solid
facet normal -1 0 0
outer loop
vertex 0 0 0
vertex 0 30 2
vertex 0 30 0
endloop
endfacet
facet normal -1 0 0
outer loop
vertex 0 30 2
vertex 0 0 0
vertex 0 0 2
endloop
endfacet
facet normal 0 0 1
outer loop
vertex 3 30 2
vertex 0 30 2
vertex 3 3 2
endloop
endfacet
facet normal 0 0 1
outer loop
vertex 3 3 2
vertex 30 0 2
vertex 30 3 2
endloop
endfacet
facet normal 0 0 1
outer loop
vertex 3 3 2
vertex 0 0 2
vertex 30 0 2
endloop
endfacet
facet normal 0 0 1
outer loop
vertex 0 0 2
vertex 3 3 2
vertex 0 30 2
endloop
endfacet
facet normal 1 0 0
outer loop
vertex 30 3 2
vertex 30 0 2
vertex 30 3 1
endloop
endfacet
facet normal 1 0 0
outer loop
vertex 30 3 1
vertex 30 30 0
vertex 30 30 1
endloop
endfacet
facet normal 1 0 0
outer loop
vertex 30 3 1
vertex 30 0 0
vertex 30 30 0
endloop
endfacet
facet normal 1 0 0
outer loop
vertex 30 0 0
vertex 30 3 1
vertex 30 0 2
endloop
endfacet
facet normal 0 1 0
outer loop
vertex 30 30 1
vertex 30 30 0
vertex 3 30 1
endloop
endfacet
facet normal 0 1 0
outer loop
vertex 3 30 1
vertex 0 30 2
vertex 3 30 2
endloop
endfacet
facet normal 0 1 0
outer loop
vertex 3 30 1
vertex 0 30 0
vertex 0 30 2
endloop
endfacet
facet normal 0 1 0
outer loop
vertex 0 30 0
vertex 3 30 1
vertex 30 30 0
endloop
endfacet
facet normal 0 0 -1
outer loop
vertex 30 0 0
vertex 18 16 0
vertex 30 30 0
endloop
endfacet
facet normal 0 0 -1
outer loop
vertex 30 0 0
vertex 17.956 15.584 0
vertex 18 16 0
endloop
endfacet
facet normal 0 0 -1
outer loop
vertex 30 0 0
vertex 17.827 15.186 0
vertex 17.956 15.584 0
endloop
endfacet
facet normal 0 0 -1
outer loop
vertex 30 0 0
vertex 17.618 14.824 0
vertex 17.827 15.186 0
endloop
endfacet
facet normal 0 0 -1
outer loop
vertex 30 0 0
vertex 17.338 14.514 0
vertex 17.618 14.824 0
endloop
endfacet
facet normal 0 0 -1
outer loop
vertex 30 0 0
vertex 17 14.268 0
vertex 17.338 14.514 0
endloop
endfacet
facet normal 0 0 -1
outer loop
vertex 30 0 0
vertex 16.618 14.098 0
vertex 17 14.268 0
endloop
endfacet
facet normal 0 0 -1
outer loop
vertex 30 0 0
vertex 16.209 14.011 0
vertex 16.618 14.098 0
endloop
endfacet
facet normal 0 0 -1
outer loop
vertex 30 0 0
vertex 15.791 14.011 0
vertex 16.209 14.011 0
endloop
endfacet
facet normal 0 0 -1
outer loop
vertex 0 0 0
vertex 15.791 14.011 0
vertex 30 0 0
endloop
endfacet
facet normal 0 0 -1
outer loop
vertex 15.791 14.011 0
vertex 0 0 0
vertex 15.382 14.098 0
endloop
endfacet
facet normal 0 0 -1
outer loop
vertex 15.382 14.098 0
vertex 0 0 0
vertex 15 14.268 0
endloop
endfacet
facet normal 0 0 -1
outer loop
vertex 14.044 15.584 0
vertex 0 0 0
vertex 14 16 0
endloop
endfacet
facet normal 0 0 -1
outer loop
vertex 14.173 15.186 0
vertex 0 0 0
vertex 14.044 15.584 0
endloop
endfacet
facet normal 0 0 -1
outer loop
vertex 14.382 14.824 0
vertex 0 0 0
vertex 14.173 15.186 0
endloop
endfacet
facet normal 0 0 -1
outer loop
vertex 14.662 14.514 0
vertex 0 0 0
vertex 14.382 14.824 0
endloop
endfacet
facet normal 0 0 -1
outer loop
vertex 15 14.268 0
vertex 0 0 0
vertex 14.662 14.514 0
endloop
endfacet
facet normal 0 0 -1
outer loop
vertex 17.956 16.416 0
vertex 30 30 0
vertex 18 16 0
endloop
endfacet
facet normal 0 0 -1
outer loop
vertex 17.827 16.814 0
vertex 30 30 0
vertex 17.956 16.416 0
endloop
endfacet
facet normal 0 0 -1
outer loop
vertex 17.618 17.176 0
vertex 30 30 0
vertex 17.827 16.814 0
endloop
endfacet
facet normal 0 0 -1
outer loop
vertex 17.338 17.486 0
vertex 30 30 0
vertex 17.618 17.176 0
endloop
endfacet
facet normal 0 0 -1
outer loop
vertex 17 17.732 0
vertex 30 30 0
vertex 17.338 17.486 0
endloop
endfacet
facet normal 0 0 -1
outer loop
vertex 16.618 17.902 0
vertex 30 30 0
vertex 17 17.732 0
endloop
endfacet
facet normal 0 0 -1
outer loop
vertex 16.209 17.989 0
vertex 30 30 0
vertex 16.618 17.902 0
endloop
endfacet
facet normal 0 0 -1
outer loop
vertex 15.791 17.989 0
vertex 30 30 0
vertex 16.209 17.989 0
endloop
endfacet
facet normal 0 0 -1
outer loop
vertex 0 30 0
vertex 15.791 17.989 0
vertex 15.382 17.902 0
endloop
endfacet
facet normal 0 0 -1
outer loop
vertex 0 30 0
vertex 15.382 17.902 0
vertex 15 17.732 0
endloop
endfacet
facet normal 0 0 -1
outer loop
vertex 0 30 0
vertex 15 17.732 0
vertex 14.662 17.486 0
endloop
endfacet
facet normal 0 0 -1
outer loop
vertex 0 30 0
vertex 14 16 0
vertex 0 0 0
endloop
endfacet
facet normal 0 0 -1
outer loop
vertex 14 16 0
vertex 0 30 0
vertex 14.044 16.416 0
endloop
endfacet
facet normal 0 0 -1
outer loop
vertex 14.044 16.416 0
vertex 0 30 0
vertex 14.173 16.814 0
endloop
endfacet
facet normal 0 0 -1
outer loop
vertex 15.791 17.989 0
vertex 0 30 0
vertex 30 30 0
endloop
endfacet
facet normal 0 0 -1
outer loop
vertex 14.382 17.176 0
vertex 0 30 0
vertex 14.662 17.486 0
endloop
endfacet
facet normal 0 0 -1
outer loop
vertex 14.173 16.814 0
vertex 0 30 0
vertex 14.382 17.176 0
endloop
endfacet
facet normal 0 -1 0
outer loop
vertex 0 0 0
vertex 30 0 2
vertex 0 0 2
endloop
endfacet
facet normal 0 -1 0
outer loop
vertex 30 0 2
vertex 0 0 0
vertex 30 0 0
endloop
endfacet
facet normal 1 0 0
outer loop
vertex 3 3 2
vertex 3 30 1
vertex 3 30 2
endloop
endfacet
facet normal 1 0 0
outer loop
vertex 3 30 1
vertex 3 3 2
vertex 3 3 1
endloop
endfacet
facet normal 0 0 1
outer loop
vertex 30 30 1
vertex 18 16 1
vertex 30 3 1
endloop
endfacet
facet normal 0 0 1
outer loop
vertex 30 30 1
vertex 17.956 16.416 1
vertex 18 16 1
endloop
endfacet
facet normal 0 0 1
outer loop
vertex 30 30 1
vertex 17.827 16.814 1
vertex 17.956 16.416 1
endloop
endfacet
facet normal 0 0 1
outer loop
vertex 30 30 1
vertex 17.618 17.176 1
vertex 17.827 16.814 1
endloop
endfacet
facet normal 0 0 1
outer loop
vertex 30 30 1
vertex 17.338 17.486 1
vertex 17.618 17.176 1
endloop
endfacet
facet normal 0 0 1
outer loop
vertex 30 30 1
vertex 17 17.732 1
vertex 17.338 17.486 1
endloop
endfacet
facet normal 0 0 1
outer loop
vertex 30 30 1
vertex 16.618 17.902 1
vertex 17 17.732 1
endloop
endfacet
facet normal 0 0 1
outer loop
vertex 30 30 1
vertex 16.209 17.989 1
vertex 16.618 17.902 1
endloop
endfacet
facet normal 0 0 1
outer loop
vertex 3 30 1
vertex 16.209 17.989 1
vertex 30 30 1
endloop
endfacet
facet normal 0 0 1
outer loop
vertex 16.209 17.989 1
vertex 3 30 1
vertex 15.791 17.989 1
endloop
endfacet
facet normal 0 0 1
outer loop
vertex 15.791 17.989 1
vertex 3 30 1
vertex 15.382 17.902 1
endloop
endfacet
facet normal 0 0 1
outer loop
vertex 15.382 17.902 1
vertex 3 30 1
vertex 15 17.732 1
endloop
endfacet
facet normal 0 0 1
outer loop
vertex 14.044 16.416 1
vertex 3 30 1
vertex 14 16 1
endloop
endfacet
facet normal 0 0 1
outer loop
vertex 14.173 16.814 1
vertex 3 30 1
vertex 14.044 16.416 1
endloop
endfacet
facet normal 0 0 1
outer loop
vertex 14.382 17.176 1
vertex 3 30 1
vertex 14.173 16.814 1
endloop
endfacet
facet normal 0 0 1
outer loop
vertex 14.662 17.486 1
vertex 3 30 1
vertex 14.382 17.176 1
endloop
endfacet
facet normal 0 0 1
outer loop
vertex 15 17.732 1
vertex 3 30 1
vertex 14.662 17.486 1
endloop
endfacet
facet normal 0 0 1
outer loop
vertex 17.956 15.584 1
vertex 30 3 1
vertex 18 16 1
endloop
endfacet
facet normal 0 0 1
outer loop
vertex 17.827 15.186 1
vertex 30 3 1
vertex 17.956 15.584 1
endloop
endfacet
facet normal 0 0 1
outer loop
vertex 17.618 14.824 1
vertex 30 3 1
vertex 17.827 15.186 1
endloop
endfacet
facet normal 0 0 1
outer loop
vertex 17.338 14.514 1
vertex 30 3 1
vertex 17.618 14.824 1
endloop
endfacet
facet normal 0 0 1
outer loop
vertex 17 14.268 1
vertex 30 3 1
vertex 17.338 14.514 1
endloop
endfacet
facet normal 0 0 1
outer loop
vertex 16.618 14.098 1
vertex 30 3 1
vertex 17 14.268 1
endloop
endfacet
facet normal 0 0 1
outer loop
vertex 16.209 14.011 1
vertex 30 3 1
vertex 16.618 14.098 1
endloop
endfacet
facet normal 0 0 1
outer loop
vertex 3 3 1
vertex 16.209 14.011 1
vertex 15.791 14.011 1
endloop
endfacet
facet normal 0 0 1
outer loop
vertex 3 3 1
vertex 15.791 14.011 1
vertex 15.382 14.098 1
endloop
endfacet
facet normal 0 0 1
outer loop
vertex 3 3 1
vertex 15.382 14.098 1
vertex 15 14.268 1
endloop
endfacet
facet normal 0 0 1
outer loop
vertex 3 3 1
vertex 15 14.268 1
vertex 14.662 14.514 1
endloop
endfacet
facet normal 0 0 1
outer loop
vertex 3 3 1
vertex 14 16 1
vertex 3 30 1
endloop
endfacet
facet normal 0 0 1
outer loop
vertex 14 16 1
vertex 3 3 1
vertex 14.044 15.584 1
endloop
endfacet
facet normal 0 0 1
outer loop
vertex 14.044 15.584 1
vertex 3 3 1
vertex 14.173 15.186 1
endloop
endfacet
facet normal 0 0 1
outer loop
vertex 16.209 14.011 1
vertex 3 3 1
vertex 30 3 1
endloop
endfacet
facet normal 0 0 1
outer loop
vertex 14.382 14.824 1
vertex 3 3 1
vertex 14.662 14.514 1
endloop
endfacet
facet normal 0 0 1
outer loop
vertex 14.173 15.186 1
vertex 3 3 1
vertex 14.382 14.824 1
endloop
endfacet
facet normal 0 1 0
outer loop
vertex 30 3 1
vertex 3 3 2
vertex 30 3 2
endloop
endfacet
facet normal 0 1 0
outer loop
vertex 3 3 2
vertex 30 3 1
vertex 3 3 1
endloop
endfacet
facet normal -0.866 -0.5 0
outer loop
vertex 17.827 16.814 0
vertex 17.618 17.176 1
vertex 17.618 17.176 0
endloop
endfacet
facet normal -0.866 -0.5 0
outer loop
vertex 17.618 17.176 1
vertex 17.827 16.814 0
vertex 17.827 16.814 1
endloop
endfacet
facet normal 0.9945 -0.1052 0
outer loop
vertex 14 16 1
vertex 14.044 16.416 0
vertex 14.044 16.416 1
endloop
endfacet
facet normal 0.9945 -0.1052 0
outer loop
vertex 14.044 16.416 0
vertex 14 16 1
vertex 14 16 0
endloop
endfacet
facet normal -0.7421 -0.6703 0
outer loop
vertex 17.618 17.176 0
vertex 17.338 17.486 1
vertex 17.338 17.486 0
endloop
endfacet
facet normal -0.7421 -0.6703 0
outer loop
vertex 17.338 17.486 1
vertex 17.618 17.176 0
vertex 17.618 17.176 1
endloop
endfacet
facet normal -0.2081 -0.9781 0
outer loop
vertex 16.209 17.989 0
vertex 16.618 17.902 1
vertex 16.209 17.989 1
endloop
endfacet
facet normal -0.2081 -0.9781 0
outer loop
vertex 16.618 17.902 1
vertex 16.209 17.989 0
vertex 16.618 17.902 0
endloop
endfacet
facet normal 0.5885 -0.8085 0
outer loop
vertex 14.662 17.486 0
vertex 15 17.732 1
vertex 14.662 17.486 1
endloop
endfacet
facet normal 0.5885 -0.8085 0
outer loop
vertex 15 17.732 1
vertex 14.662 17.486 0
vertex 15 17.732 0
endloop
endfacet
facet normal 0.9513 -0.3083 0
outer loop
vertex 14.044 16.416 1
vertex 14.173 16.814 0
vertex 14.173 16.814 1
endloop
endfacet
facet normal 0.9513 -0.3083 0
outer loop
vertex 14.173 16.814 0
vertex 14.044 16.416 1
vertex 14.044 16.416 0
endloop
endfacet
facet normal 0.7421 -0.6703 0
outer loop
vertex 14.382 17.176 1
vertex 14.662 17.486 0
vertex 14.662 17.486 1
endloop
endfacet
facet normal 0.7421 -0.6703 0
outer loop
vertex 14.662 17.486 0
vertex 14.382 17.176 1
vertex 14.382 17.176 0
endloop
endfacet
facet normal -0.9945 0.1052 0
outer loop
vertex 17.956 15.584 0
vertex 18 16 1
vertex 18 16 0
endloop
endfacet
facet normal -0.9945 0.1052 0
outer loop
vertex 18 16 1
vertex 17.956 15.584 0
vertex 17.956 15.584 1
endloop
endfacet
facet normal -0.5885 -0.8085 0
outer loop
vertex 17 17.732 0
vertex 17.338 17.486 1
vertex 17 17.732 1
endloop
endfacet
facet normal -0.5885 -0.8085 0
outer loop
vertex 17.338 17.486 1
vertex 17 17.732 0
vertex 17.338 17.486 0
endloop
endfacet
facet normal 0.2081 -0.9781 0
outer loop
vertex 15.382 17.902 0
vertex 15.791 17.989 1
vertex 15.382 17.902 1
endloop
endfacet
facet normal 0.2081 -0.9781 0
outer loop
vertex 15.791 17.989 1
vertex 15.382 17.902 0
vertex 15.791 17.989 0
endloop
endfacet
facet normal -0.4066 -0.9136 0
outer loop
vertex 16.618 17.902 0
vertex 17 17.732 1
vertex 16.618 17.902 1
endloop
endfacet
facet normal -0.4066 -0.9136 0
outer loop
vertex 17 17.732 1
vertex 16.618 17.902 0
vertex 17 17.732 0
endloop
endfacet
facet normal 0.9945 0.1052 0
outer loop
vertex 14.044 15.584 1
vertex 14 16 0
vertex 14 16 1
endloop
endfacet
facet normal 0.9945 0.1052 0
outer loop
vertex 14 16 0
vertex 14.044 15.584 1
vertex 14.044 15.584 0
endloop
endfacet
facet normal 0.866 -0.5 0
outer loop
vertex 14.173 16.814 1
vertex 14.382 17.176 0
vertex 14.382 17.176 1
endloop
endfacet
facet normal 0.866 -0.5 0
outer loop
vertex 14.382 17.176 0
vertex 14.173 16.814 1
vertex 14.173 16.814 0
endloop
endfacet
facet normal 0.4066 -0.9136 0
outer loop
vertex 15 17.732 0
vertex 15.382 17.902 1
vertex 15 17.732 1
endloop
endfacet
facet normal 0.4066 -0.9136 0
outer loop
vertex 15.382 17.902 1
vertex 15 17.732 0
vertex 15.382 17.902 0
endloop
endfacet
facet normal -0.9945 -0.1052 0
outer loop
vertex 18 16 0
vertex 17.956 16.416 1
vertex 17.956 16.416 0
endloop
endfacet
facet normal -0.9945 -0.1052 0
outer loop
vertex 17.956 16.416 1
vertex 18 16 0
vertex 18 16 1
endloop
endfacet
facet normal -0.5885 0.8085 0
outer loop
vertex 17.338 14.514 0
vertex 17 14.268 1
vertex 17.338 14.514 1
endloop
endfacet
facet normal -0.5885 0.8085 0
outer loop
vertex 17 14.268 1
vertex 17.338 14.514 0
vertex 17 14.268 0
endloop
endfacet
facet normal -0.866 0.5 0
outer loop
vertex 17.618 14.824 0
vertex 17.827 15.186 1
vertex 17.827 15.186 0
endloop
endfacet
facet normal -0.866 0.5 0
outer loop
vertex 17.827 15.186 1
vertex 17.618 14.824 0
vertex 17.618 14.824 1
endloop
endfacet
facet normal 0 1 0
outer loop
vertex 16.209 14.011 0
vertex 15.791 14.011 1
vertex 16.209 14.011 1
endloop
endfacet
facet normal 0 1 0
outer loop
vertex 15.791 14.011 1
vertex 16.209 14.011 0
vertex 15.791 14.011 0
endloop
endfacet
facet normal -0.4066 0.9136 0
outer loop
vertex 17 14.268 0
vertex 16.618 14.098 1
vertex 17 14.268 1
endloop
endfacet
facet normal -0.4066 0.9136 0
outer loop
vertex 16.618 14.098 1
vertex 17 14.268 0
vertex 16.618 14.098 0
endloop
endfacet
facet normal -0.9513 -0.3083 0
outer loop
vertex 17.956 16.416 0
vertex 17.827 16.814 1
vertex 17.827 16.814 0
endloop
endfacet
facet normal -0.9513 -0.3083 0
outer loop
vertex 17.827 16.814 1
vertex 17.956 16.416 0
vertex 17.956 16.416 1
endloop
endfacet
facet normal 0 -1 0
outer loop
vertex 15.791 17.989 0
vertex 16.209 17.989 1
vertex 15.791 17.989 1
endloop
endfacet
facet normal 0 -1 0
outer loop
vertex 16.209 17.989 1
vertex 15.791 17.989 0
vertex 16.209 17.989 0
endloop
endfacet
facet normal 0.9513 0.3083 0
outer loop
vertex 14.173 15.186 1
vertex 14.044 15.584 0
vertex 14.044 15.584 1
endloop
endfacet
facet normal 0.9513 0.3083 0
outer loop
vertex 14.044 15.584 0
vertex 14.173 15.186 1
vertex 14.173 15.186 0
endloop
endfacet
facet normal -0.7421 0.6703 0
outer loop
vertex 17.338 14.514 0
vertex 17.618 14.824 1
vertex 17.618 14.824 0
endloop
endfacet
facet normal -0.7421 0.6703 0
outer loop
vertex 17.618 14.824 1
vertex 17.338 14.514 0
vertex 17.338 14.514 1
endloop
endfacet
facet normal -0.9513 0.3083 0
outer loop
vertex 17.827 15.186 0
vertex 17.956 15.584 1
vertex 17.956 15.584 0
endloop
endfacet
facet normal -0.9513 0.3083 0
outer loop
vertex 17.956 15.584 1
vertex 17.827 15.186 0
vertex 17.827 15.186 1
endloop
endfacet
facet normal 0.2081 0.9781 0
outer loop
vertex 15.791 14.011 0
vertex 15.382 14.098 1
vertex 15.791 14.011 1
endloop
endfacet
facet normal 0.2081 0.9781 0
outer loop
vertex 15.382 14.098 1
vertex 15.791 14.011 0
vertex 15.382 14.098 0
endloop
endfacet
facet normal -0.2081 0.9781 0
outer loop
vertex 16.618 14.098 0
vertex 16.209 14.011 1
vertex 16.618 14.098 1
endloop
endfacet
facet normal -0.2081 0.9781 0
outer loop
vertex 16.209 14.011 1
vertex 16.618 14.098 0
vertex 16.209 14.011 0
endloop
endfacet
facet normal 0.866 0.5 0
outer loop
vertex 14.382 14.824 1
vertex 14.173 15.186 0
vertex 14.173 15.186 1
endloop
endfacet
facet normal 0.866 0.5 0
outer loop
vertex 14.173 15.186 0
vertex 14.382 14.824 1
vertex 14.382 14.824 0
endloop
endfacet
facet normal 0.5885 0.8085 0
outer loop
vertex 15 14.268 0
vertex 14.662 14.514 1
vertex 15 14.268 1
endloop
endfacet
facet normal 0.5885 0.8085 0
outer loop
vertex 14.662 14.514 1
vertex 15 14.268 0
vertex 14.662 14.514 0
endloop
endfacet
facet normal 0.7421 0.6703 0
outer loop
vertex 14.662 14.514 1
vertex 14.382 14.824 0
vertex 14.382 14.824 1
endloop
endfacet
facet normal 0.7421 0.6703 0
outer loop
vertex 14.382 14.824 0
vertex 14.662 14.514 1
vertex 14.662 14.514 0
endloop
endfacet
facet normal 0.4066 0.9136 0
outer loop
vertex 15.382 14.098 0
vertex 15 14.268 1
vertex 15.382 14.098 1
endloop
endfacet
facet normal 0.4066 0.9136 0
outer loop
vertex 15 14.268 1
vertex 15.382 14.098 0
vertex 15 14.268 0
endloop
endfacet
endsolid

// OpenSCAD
// Schildaufhänger
//---------------------------------------

$fn=030;

difference() {
    cube([30,30,2]);
    translate([3,3,1.0])
    cube([30,30,2]);
    
    translate([16,16,-2])
    cylinder(r=2,h=7);
}
